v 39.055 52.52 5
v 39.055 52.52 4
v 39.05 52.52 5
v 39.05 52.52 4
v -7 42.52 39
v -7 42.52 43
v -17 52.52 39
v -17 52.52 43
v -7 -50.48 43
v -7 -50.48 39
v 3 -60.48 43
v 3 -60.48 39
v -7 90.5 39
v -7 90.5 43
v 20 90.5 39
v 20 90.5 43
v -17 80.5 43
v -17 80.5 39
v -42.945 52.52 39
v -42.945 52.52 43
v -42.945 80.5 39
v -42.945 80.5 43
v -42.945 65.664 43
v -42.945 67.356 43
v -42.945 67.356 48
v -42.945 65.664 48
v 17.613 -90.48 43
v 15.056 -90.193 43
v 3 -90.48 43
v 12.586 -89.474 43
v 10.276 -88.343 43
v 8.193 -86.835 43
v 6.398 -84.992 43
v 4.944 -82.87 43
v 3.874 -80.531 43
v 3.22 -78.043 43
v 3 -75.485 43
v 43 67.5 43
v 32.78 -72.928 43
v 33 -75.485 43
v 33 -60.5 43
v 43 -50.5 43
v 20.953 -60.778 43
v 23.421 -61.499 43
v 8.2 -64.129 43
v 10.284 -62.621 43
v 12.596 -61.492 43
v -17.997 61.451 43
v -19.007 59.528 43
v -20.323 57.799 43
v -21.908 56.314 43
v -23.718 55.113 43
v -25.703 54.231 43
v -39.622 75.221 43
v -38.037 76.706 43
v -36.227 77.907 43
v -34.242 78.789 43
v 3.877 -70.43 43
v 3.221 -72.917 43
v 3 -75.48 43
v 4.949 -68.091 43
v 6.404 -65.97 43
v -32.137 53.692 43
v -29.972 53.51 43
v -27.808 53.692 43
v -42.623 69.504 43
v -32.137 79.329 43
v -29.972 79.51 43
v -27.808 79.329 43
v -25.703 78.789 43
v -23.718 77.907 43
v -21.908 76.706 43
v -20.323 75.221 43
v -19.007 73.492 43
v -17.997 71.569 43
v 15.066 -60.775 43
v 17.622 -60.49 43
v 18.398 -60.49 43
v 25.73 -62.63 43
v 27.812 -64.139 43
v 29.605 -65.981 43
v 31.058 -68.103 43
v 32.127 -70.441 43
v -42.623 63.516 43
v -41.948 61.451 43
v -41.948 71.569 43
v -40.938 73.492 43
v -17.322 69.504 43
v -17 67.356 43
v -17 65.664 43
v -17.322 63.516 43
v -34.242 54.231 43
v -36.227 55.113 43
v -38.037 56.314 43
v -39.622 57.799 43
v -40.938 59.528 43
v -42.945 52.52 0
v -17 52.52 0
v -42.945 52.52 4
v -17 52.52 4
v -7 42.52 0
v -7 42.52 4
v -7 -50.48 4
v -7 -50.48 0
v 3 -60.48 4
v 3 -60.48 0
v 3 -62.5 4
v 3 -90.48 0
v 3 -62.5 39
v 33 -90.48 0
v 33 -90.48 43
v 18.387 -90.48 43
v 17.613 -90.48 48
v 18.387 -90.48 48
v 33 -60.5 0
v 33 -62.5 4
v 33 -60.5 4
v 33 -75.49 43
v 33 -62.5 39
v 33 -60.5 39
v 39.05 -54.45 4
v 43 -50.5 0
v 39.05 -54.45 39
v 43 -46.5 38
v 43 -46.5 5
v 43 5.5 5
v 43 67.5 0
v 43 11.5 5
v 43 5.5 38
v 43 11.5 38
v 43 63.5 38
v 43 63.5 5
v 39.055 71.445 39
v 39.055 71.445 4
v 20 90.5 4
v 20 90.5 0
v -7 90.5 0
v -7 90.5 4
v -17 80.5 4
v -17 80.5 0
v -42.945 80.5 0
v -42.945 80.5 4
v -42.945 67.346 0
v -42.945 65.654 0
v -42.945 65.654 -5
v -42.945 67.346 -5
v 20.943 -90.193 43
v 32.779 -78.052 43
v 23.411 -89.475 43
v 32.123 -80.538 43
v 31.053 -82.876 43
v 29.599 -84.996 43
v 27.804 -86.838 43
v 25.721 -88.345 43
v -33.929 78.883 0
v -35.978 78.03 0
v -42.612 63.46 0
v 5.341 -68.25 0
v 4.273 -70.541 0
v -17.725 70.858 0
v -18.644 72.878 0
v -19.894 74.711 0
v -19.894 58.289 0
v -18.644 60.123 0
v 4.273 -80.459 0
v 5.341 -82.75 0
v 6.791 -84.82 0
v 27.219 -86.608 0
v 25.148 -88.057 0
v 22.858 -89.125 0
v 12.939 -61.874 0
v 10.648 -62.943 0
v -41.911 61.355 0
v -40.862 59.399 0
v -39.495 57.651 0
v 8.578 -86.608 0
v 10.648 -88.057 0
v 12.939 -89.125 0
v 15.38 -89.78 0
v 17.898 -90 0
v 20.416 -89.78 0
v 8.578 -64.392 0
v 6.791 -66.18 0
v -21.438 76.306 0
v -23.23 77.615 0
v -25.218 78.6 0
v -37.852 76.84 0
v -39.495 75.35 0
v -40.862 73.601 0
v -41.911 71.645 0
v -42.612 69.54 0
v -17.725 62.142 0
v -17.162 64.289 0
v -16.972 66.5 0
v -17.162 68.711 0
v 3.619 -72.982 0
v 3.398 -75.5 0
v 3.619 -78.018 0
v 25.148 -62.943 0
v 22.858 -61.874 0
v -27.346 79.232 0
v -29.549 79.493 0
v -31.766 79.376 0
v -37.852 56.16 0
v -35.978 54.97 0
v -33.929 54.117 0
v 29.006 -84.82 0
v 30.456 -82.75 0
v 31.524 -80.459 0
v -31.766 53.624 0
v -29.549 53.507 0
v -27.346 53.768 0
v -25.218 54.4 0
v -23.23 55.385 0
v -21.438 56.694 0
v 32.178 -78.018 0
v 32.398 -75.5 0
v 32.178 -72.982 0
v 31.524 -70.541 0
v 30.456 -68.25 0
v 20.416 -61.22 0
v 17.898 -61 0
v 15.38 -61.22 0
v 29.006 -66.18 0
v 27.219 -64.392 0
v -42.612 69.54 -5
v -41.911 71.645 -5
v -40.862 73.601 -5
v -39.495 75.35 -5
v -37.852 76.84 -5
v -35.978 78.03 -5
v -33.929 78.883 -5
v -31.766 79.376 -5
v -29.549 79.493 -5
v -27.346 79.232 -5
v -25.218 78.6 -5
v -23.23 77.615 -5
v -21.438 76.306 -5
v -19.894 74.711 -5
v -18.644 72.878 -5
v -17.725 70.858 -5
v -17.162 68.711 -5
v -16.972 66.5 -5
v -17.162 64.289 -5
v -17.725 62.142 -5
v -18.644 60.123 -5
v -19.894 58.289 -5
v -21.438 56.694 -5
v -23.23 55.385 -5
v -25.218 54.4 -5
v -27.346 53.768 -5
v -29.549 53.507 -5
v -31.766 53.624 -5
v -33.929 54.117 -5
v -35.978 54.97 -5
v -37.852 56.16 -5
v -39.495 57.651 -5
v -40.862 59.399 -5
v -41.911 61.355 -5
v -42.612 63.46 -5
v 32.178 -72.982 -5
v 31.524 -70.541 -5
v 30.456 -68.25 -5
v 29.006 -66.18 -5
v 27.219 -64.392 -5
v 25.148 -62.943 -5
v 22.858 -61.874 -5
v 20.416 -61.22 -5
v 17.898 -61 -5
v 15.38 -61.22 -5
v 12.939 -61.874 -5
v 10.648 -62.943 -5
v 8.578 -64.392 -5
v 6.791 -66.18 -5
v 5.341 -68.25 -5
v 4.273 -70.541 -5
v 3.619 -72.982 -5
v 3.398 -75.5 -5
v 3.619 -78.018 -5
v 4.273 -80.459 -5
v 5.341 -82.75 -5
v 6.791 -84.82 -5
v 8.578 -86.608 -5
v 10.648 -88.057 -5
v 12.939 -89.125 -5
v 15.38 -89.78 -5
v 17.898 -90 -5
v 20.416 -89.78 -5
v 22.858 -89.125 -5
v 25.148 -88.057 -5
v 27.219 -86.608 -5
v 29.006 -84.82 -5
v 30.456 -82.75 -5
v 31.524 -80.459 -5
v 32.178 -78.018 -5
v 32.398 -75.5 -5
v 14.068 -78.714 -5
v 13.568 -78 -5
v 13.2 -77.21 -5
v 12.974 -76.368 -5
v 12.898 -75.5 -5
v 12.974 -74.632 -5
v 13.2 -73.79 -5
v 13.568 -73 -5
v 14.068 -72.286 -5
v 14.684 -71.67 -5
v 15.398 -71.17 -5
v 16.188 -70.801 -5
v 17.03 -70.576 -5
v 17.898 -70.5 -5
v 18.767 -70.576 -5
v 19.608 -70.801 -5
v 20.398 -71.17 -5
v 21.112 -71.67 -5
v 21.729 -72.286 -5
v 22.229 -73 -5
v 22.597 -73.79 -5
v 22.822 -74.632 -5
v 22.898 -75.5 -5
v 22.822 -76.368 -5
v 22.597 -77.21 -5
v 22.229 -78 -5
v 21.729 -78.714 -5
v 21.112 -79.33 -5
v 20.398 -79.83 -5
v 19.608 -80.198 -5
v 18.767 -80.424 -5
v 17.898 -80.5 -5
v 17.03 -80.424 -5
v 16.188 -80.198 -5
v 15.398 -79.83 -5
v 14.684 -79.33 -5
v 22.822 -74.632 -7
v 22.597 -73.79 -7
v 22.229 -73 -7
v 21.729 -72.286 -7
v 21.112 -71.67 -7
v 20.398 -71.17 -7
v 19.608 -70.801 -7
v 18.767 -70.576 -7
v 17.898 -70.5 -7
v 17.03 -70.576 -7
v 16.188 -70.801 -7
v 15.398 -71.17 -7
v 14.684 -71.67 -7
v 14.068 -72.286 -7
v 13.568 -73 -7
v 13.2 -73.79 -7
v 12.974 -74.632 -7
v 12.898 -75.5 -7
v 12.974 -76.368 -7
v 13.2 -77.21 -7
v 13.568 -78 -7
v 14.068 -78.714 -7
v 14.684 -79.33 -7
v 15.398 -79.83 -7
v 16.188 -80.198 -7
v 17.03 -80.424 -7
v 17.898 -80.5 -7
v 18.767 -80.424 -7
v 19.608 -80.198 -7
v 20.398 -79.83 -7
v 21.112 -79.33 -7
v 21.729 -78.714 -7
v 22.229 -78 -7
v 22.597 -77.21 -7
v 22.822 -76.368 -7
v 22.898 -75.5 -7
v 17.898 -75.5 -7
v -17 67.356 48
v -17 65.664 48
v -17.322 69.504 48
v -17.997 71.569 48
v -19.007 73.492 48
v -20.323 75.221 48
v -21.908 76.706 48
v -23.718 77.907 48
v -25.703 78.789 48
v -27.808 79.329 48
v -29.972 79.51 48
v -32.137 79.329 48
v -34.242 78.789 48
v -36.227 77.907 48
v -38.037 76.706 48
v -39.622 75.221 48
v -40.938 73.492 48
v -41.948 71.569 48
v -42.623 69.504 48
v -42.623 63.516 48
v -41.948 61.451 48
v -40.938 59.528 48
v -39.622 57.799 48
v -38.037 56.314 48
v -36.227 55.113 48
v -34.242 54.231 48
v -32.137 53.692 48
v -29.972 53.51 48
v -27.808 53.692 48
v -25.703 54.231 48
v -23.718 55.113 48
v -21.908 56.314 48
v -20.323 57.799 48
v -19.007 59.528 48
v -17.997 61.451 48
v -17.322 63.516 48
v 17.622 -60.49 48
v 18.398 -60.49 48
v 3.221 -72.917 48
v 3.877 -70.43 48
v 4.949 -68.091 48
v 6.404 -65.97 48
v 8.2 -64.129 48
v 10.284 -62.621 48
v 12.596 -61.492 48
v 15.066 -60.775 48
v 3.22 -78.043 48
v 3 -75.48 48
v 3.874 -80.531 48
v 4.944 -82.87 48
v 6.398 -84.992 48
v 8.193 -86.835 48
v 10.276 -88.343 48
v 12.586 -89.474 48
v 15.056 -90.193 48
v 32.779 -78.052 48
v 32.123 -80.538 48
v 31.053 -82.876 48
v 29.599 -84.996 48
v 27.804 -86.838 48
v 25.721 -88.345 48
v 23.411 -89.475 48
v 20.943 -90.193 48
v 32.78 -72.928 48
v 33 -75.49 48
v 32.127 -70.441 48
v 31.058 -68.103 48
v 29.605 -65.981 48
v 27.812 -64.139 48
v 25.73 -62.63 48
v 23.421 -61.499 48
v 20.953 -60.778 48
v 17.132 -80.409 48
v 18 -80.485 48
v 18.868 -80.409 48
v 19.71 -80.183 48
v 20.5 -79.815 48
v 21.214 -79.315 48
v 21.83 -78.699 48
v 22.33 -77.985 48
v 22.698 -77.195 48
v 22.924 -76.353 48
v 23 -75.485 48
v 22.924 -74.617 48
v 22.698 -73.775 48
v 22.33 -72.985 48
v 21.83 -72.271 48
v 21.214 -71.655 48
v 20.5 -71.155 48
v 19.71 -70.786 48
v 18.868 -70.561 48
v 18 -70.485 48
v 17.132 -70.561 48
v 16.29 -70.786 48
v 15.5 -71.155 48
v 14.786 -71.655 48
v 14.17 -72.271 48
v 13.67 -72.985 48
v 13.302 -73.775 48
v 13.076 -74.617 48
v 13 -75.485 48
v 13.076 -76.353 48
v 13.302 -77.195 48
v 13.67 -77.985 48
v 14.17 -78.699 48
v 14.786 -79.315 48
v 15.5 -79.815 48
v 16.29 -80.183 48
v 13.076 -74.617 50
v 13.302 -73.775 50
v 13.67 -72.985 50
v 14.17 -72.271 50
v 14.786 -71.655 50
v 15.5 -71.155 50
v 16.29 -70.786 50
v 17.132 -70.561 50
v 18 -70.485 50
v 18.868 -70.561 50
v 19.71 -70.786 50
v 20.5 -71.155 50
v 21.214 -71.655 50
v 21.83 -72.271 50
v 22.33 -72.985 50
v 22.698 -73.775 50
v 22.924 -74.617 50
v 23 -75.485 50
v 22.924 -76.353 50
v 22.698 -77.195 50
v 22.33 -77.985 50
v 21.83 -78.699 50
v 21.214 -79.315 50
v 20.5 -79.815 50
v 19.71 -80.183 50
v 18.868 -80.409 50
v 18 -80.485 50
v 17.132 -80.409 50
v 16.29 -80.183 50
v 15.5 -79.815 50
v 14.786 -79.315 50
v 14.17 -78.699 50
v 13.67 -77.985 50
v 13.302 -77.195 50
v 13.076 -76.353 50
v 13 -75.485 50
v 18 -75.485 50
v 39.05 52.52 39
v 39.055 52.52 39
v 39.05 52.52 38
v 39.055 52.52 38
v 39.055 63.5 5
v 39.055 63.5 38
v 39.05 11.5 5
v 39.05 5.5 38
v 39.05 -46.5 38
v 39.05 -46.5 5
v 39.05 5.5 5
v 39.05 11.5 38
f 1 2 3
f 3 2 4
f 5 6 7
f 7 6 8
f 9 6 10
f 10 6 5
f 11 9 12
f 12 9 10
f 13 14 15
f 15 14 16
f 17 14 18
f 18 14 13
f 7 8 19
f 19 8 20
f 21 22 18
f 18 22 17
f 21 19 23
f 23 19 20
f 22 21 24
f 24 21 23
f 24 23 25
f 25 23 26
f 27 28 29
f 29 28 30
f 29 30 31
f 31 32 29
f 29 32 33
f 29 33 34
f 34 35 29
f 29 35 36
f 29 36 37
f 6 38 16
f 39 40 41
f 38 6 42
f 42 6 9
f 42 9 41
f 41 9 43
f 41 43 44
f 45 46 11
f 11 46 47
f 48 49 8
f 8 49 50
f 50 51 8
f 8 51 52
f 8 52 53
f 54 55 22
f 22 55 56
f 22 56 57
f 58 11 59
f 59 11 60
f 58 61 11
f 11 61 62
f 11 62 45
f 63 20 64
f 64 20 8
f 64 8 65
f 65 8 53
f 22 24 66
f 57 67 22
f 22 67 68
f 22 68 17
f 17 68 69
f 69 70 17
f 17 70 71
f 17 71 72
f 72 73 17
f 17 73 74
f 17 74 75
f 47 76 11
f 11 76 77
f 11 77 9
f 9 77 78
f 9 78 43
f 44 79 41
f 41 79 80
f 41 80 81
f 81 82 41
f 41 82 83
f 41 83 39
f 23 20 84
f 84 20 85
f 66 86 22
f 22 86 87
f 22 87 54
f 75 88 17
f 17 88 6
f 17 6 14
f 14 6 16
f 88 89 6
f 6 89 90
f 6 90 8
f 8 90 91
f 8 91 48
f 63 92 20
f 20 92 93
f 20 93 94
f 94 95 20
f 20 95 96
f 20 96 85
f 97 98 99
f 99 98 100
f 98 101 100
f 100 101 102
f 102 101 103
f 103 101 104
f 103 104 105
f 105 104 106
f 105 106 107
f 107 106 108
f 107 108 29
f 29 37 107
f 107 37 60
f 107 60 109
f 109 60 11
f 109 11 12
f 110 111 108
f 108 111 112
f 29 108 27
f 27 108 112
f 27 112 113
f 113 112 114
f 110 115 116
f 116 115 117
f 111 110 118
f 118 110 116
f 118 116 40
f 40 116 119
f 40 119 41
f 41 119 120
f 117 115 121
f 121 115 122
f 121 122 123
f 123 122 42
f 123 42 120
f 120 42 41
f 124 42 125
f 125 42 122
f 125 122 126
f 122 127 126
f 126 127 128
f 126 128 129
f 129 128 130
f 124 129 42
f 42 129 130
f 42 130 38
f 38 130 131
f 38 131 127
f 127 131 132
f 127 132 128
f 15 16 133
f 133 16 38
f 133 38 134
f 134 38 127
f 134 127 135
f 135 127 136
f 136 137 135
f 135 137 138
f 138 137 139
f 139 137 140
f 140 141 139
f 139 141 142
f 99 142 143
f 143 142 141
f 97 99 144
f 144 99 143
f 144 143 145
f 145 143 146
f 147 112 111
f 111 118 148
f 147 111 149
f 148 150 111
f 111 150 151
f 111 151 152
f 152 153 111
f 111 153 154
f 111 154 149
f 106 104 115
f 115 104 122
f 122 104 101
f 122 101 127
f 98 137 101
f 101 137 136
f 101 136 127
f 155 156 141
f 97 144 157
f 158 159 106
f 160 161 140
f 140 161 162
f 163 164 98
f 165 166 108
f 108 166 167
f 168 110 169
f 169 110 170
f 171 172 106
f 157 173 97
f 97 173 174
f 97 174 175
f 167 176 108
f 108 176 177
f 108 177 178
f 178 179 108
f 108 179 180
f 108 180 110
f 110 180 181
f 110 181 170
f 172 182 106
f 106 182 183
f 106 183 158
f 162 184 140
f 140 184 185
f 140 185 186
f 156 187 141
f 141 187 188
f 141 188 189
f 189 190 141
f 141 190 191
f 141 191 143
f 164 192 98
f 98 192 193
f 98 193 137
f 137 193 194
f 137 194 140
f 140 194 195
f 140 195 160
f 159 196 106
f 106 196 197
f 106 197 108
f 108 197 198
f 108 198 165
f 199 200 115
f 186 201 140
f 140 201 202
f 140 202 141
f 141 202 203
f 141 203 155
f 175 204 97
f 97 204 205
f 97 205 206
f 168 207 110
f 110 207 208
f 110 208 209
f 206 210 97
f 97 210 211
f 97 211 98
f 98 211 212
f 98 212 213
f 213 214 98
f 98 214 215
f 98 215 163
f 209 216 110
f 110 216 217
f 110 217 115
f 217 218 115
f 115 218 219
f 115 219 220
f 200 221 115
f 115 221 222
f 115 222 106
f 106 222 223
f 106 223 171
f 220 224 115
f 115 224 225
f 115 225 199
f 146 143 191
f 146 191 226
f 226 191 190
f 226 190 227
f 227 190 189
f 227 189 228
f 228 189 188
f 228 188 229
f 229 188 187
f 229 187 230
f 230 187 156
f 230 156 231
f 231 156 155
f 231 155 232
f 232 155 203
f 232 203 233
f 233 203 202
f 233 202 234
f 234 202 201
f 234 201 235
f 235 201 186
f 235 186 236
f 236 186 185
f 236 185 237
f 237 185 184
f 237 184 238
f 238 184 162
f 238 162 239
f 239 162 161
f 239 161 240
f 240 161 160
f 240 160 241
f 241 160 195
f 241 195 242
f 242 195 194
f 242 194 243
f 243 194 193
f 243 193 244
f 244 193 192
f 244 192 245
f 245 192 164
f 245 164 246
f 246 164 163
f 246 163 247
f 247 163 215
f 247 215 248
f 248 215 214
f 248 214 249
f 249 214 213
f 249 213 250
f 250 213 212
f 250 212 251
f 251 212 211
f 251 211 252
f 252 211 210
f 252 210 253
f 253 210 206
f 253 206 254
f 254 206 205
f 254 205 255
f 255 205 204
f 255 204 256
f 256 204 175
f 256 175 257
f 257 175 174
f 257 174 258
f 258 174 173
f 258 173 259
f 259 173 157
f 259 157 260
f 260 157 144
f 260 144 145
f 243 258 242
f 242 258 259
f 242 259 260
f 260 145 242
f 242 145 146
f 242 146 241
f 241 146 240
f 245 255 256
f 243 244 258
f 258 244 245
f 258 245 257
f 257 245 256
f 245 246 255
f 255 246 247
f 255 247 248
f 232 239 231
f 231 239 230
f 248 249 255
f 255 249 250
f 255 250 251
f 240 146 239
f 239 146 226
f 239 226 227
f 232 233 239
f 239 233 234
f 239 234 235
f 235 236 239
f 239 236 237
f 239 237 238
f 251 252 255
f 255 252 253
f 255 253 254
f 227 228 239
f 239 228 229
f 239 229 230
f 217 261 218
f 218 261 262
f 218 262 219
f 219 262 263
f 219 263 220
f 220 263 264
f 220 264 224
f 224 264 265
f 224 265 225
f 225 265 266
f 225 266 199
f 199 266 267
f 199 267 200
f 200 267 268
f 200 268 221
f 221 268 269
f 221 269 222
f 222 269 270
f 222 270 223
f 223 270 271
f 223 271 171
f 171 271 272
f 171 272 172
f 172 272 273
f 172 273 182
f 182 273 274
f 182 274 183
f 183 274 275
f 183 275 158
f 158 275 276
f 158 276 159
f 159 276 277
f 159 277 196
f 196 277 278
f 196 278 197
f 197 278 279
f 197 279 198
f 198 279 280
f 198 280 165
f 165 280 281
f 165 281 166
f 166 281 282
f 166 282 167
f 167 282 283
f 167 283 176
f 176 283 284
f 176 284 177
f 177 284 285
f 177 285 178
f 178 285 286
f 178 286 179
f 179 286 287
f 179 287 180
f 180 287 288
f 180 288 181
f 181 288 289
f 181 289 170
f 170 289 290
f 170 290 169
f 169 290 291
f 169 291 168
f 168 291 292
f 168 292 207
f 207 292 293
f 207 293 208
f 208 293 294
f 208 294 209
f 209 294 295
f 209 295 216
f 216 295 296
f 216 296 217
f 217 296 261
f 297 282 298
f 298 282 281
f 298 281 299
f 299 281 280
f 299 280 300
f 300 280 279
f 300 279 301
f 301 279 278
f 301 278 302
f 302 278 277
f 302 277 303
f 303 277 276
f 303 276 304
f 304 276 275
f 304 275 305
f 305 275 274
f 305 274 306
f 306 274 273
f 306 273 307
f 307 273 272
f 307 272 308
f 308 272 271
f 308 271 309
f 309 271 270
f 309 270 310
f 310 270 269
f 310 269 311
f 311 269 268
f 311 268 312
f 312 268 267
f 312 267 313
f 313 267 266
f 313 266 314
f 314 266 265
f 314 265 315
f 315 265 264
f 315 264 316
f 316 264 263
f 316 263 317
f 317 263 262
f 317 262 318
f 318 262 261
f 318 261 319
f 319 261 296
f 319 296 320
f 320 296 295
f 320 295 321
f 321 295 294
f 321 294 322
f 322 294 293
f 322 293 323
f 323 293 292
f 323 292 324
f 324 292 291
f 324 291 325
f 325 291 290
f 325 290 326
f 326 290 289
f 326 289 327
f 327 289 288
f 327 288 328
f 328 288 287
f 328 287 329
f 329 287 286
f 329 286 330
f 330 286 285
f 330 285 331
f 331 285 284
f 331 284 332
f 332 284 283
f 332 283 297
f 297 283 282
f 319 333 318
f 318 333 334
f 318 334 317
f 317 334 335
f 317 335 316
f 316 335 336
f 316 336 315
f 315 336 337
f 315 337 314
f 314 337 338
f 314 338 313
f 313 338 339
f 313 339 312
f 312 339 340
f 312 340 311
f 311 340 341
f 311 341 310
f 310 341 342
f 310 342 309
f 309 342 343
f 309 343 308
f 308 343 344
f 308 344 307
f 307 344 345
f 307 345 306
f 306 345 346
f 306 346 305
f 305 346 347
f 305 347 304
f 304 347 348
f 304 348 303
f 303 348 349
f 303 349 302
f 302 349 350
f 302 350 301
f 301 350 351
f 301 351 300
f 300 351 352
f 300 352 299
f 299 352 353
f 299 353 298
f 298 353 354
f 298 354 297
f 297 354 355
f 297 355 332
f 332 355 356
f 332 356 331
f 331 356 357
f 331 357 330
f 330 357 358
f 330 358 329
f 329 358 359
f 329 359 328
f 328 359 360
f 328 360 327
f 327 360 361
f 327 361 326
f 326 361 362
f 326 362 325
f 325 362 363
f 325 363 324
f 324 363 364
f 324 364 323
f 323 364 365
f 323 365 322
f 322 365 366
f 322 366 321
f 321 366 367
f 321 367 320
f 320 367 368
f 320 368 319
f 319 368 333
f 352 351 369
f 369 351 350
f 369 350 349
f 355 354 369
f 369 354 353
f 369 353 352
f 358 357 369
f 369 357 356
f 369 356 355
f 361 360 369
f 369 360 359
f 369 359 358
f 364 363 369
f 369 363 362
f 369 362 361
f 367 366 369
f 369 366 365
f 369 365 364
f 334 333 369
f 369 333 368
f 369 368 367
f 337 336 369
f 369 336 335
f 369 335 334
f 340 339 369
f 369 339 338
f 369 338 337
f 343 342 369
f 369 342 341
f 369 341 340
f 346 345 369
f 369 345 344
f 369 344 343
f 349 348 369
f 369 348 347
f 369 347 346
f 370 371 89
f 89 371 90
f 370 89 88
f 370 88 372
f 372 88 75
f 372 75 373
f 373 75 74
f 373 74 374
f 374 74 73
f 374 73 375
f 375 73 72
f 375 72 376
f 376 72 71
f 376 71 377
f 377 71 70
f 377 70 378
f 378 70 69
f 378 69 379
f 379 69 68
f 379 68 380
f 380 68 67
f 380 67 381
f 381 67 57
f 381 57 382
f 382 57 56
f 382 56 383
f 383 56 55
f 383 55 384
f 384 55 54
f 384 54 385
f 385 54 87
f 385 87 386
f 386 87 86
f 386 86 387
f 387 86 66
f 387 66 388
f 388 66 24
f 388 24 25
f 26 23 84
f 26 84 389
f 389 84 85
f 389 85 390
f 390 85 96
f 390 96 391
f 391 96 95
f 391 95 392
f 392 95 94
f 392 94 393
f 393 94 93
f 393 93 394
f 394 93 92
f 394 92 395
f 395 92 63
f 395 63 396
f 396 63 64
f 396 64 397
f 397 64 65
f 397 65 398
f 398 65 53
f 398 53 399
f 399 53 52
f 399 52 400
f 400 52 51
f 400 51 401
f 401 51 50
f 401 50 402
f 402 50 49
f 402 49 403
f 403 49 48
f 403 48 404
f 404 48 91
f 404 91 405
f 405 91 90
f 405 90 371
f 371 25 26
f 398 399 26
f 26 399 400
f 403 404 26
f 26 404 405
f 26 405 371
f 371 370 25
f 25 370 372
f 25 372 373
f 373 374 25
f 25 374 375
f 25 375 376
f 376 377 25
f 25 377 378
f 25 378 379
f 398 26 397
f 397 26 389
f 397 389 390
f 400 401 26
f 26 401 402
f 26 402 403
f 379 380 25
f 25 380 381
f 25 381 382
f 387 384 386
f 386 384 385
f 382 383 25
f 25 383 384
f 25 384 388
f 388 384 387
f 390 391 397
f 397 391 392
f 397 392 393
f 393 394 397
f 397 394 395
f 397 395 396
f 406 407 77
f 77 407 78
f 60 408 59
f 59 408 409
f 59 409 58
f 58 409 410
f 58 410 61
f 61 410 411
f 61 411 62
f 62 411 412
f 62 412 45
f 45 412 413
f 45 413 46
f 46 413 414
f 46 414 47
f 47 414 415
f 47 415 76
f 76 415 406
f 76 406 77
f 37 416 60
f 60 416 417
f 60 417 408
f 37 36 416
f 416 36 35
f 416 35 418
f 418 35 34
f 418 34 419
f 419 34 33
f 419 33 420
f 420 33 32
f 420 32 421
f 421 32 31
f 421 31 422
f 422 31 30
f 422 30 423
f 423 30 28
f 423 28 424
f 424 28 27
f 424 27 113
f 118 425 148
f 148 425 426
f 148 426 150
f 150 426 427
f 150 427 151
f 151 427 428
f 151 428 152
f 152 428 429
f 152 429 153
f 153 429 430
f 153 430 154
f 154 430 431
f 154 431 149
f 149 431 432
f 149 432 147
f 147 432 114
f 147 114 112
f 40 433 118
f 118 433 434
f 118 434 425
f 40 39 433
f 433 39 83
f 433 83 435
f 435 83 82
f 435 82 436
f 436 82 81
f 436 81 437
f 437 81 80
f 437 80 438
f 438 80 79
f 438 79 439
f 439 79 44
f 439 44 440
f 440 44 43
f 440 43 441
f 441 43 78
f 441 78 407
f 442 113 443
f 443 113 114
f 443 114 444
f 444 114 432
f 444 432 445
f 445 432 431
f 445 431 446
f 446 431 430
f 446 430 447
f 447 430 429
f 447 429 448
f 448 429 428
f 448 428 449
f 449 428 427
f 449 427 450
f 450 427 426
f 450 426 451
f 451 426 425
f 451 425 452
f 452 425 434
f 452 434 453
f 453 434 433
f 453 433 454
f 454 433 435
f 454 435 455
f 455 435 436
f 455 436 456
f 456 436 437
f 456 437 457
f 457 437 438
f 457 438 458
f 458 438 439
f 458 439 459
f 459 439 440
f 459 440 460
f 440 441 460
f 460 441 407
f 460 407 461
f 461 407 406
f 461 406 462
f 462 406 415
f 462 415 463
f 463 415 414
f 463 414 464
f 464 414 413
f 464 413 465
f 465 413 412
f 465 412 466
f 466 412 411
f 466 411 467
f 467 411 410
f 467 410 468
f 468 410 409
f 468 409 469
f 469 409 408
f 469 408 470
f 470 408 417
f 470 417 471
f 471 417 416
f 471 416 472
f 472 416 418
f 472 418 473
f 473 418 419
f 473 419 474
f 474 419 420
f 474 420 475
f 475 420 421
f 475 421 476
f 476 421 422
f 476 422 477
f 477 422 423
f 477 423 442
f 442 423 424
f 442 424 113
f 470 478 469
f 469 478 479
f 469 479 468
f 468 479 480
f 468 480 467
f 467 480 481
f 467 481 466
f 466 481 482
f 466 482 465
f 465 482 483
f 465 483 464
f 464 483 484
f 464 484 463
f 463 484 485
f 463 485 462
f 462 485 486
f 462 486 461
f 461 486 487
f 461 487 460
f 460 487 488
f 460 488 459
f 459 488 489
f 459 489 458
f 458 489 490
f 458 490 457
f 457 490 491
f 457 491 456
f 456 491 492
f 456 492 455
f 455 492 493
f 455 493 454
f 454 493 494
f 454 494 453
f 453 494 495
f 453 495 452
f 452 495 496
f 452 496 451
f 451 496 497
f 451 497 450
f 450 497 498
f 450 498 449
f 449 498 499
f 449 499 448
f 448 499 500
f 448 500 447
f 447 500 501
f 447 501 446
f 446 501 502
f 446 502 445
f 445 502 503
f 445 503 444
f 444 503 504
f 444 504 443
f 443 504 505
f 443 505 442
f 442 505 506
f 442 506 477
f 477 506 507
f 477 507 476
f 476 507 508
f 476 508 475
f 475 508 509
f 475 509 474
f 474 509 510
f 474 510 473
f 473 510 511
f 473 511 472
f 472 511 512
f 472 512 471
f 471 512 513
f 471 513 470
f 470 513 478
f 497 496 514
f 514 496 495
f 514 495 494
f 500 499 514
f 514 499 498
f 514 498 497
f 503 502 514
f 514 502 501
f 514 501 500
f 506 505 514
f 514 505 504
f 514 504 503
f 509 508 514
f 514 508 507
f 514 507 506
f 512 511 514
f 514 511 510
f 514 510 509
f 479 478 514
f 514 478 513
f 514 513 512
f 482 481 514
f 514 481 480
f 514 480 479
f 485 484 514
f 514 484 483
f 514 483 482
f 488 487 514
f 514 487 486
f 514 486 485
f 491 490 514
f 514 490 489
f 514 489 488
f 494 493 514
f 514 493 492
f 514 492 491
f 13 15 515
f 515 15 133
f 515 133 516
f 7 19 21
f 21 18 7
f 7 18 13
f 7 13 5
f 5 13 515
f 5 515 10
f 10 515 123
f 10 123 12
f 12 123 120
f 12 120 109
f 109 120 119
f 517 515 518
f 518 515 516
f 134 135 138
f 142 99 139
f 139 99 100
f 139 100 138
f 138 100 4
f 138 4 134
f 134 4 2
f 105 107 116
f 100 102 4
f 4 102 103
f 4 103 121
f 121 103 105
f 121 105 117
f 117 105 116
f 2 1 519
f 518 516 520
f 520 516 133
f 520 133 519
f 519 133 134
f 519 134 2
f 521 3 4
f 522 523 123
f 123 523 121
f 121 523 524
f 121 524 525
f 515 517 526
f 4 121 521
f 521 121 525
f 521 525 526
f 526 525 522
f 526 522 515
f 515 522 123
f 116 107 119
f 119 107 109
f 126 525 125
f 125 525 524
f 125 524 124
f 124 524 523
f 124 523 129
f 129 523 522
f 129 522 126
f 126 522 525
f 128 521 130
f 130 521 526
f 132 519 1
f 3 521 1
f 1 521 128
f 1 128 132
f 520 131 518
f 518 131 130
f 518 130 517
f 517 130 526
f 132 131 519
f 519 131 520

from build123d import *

# Parameters (mm, degrees)
SKETCH1_R           = 14.5
BOSS_EXTRUDE1_DEPTH = 43
SKETCH1_5_R         = 14.5
BOSS_EXTRUDE2_DEPTH = 43
BOSS_EXTRUDE3_DEPTH = 43
BOSS_EXTRUDE4_DEPTH = 5
SKETCH1_8_R         = 14.5
BOSS_EXTRUDE5_DEPTH = 5
SKETCH3_R           = 5
BOSS_EXTRUDE6_DEPTH = 2
BOSS_EXTRUDE7_DEPTH = 5
BOSS_EXTRUDE8_DEPTH = 5
SKETCH5_R           = 5
BOSS_EXTRUDE9_DEPTH = 2
SKETCH6_W           = 35
SKETCH6_H           = 27.979977464
CUT_EXTRUDE1_DEPTH  = 82
SKETCH7_W           = 65.1
SKETCH7_H           = 35
CUT_EXTRUDE4_DEPTH  = 153
SKETCH9_W           = 33
SKETCH9_H           = 52
CUT_EXTRUDE5_DEPTH  = 33


with BuildPart() as part:
    # Sketch1 → Boss-Extrude1 (new body)
    with BuildSketch(Plane.XY):
        with BuildLine():
            Line((-17, 80.5), (-42.944942798, 80.5))
            Line((-42.944942798, 80.5), (-42.944942798, 67.345568333))
            ThreePointArc((-42.944942798, 67.345568333), (-29.549463234, 79.493116027), (-16.972471399, 66.5))
            ThreePointArc((-16.972471399, 66.5), (-29.549463234, 53.506883973), (-42.944942798, 65.654431667))
            Line((-42.944942798, 65.654431667), (-42.944942798, 52.520022536))
            Line((-42.944942798, 52.520022536), (-17, 52.520022536))
            Line((-17, 52.520022536), (-7, 42.520022536))
            Line((-7, 42.520022536), (-7, -50.479977464))
            Line((-7, -50.479977464), (3, -60.479977464))
            Line((3, -60.479977464), (3, -90.479977464))
            Line((3, -90.479977464), (33, -90.479977464))
            Line((33, -90.479977464), (33, -60.5))
            Line((33, -60.5), (43, -50.5))
            Line((43, -50.5), (43, 67.5))
            Line((43, 67.5), (20, 90.5))
            Line((20, 90.5), (-7, 90.5))
            Line((-7, 90.5), (-17, 80.5))
        make_face()
        with Locations((17.898375843, -75.5)):
            Circle(SKETCH1_R, mode=Mode.SUBTRACT)
    extrude(amount=BOSS_EXTRUDE1_DEPTH)

    # Sketch1<5> → Boss-Extrude2 (add)
    with BuildSketch(Plane.XY):
        with Locations((17.898375843, -75.5)):
            Circle(SKETCH1_5_R)
    extrude(amount=BOSS_EXTRUDE2_DEPTH)

    # Sketch1<6> → Boss-Extrude3 (add)
    with BuildSketch(Plane.XY):
        with BuildLine():
            ThreePointArc((-16.972471399, 66.5), (-29.549463234, 79.493116027), (-42.944942798, 67.345568333))
            Line((-42.944942798, 67.345568333), (-42.944942798, 65.654431667))
            ThreePointArc((-42.944942798, 65.654431667), (-29.549463234, 53.506883973), (-16.972471399, 66.5))
        make_face()
    extrude(amount=BOSS_EXTRUDE3_DEPTH)

    # Sketch1<7> → Boss-Extrude4 (add)
    with BuildSketch(Plane.XY):
        with BuildLine():
            ThreePointArc((-16.972471399, 66.5), (-29.549463234, 79.493116027), (-42.944942798, 67.345568333))
            Line((-42.944942798, 67.345568333), (-42.944942798, 65.654431667))
            ThreePointArc((-42.944942798, 65.654431667), (-29.549463234, 53.506883973), (-16.972471399, 66.5))
        make_face()
    extrude(amount=-BOSS_EXTRUDE4_DEPTH)

    # Sketch1<8> → Boss-Extrude5 (add)
    with BuildSketch(Plane.XY):
        with Locations((17.898375843, -75.5)):
            Circle(SKETCH1_8_R)
    extrude(amount=-BOSS_EXTRUDE5_DEPTH)

    # Sketch3 → Boss-Extrude6 (add)
    with BuildSketch(Plane(origin=(0, 0, -5), x_dir=(-1, 0, 0), z_dir=(0, 0, -1))):
        with Locations((-17.898375843, -75.5)):
            Circle(SKETCH3_R)
    extrude(amount=BOSS_EXTRUDE6_DEPTH)

    # Sketch4 → Boss-Extrude7 (add)
    with BuildSketch(Plane.XY.offset(43)):
        with BuildLine():
            ThreePointArc((-17, 67.355579601), (-29.972471399, 79.510011268), (-42.944942798, 67.355579601))
            Line((-42.944942798, 67.355579601), (-42.944942798, 65.664442935))
            ThreePointArc((-42.944942798, 65.664442935), (-29.972471399, 53.510011268), (-17, 65.664442935))
            Line((-17, 65.664442935), (-17, 67.355579601))
        make_face()
    extrude(amount=BOSS_EXTRUDE7_DEPTH)

    # Sketch4<3> → Boss-Extrude8 (add)
    with BuildSketch(Plane.XY.offset(43)):
        with BuildLine():
            ThreePointArc((17.62239464, -60.489736711), (3.000000814, -75.480042097), (17.612515852, -90.479977464))
            Line((17.612515852, -90.479977464), (18.387484148, -90.479977464))
            ThreePointArc((18.387484148, -90.479977464), (32.999999143, -75.490053363), (18.397621205, -60.490254111))
            Line((18.397621205, -60.490254111), (17.62239464, -60.489736711))
        make_face()
    extrude(amount=BOSS_EXTRUDE8_DEPTH)

    # Sketch5 → Boss-Extrude9 (add)
    with BuildSketch(Plane.XY.offset(48)):
        with Locations((18, -75.484983098)):
            Circle(SKETCH5_R)
    extrude(amount=BOSS_EXTRUDE9_DEPTH)

    # Sketch6 → Cut-Extrude1 (cut)
    with BuildSketch(Plane.ZY.offset(42.944942798)):
        with Locations((21.5, 66.510011268)):
            Rectangle(SKETCH6_W, SKETCH6_H)
    extrude(amount=-CUT_EXTRUDE1_DEPTH, mode=Mode.SUBTRACT)

    # Sketch7 → Cut-Extrude4 (cut)
    with BuildSketch(Plane(origin=(0, 90.5, 0), x_dir=(1, 0, 0), z_dir=(0, 1, 0))):
        with Locations((6.5, -21.5)):
            Rectangle(SKETCH7_W, SKETCH7_H)
    extrude(amount=-CUT_EXTRUDE4_DEPTH, mode=Mode.SUBTRACT)

    # Sketch9 → Cut-Extrude5 (cut)
    with BuildSketch(Plane(origin=(43, 0, 0), x_dir=(0, 0, -1), z_dir=(1, 0, 0))):
        with Locations((-21.5, 37.5)):
            Rectangle(SKETCH9_W, SKETCH9_H)
        with Locations((-21.5, -20.5)):
            Rectangle(SKETCH9_W, SKETCH9_H)
    extrude(amount=-CUT_EXTRUDE5_DEPTH, mode=Mode.SUBTRACT)


solid = part.part
